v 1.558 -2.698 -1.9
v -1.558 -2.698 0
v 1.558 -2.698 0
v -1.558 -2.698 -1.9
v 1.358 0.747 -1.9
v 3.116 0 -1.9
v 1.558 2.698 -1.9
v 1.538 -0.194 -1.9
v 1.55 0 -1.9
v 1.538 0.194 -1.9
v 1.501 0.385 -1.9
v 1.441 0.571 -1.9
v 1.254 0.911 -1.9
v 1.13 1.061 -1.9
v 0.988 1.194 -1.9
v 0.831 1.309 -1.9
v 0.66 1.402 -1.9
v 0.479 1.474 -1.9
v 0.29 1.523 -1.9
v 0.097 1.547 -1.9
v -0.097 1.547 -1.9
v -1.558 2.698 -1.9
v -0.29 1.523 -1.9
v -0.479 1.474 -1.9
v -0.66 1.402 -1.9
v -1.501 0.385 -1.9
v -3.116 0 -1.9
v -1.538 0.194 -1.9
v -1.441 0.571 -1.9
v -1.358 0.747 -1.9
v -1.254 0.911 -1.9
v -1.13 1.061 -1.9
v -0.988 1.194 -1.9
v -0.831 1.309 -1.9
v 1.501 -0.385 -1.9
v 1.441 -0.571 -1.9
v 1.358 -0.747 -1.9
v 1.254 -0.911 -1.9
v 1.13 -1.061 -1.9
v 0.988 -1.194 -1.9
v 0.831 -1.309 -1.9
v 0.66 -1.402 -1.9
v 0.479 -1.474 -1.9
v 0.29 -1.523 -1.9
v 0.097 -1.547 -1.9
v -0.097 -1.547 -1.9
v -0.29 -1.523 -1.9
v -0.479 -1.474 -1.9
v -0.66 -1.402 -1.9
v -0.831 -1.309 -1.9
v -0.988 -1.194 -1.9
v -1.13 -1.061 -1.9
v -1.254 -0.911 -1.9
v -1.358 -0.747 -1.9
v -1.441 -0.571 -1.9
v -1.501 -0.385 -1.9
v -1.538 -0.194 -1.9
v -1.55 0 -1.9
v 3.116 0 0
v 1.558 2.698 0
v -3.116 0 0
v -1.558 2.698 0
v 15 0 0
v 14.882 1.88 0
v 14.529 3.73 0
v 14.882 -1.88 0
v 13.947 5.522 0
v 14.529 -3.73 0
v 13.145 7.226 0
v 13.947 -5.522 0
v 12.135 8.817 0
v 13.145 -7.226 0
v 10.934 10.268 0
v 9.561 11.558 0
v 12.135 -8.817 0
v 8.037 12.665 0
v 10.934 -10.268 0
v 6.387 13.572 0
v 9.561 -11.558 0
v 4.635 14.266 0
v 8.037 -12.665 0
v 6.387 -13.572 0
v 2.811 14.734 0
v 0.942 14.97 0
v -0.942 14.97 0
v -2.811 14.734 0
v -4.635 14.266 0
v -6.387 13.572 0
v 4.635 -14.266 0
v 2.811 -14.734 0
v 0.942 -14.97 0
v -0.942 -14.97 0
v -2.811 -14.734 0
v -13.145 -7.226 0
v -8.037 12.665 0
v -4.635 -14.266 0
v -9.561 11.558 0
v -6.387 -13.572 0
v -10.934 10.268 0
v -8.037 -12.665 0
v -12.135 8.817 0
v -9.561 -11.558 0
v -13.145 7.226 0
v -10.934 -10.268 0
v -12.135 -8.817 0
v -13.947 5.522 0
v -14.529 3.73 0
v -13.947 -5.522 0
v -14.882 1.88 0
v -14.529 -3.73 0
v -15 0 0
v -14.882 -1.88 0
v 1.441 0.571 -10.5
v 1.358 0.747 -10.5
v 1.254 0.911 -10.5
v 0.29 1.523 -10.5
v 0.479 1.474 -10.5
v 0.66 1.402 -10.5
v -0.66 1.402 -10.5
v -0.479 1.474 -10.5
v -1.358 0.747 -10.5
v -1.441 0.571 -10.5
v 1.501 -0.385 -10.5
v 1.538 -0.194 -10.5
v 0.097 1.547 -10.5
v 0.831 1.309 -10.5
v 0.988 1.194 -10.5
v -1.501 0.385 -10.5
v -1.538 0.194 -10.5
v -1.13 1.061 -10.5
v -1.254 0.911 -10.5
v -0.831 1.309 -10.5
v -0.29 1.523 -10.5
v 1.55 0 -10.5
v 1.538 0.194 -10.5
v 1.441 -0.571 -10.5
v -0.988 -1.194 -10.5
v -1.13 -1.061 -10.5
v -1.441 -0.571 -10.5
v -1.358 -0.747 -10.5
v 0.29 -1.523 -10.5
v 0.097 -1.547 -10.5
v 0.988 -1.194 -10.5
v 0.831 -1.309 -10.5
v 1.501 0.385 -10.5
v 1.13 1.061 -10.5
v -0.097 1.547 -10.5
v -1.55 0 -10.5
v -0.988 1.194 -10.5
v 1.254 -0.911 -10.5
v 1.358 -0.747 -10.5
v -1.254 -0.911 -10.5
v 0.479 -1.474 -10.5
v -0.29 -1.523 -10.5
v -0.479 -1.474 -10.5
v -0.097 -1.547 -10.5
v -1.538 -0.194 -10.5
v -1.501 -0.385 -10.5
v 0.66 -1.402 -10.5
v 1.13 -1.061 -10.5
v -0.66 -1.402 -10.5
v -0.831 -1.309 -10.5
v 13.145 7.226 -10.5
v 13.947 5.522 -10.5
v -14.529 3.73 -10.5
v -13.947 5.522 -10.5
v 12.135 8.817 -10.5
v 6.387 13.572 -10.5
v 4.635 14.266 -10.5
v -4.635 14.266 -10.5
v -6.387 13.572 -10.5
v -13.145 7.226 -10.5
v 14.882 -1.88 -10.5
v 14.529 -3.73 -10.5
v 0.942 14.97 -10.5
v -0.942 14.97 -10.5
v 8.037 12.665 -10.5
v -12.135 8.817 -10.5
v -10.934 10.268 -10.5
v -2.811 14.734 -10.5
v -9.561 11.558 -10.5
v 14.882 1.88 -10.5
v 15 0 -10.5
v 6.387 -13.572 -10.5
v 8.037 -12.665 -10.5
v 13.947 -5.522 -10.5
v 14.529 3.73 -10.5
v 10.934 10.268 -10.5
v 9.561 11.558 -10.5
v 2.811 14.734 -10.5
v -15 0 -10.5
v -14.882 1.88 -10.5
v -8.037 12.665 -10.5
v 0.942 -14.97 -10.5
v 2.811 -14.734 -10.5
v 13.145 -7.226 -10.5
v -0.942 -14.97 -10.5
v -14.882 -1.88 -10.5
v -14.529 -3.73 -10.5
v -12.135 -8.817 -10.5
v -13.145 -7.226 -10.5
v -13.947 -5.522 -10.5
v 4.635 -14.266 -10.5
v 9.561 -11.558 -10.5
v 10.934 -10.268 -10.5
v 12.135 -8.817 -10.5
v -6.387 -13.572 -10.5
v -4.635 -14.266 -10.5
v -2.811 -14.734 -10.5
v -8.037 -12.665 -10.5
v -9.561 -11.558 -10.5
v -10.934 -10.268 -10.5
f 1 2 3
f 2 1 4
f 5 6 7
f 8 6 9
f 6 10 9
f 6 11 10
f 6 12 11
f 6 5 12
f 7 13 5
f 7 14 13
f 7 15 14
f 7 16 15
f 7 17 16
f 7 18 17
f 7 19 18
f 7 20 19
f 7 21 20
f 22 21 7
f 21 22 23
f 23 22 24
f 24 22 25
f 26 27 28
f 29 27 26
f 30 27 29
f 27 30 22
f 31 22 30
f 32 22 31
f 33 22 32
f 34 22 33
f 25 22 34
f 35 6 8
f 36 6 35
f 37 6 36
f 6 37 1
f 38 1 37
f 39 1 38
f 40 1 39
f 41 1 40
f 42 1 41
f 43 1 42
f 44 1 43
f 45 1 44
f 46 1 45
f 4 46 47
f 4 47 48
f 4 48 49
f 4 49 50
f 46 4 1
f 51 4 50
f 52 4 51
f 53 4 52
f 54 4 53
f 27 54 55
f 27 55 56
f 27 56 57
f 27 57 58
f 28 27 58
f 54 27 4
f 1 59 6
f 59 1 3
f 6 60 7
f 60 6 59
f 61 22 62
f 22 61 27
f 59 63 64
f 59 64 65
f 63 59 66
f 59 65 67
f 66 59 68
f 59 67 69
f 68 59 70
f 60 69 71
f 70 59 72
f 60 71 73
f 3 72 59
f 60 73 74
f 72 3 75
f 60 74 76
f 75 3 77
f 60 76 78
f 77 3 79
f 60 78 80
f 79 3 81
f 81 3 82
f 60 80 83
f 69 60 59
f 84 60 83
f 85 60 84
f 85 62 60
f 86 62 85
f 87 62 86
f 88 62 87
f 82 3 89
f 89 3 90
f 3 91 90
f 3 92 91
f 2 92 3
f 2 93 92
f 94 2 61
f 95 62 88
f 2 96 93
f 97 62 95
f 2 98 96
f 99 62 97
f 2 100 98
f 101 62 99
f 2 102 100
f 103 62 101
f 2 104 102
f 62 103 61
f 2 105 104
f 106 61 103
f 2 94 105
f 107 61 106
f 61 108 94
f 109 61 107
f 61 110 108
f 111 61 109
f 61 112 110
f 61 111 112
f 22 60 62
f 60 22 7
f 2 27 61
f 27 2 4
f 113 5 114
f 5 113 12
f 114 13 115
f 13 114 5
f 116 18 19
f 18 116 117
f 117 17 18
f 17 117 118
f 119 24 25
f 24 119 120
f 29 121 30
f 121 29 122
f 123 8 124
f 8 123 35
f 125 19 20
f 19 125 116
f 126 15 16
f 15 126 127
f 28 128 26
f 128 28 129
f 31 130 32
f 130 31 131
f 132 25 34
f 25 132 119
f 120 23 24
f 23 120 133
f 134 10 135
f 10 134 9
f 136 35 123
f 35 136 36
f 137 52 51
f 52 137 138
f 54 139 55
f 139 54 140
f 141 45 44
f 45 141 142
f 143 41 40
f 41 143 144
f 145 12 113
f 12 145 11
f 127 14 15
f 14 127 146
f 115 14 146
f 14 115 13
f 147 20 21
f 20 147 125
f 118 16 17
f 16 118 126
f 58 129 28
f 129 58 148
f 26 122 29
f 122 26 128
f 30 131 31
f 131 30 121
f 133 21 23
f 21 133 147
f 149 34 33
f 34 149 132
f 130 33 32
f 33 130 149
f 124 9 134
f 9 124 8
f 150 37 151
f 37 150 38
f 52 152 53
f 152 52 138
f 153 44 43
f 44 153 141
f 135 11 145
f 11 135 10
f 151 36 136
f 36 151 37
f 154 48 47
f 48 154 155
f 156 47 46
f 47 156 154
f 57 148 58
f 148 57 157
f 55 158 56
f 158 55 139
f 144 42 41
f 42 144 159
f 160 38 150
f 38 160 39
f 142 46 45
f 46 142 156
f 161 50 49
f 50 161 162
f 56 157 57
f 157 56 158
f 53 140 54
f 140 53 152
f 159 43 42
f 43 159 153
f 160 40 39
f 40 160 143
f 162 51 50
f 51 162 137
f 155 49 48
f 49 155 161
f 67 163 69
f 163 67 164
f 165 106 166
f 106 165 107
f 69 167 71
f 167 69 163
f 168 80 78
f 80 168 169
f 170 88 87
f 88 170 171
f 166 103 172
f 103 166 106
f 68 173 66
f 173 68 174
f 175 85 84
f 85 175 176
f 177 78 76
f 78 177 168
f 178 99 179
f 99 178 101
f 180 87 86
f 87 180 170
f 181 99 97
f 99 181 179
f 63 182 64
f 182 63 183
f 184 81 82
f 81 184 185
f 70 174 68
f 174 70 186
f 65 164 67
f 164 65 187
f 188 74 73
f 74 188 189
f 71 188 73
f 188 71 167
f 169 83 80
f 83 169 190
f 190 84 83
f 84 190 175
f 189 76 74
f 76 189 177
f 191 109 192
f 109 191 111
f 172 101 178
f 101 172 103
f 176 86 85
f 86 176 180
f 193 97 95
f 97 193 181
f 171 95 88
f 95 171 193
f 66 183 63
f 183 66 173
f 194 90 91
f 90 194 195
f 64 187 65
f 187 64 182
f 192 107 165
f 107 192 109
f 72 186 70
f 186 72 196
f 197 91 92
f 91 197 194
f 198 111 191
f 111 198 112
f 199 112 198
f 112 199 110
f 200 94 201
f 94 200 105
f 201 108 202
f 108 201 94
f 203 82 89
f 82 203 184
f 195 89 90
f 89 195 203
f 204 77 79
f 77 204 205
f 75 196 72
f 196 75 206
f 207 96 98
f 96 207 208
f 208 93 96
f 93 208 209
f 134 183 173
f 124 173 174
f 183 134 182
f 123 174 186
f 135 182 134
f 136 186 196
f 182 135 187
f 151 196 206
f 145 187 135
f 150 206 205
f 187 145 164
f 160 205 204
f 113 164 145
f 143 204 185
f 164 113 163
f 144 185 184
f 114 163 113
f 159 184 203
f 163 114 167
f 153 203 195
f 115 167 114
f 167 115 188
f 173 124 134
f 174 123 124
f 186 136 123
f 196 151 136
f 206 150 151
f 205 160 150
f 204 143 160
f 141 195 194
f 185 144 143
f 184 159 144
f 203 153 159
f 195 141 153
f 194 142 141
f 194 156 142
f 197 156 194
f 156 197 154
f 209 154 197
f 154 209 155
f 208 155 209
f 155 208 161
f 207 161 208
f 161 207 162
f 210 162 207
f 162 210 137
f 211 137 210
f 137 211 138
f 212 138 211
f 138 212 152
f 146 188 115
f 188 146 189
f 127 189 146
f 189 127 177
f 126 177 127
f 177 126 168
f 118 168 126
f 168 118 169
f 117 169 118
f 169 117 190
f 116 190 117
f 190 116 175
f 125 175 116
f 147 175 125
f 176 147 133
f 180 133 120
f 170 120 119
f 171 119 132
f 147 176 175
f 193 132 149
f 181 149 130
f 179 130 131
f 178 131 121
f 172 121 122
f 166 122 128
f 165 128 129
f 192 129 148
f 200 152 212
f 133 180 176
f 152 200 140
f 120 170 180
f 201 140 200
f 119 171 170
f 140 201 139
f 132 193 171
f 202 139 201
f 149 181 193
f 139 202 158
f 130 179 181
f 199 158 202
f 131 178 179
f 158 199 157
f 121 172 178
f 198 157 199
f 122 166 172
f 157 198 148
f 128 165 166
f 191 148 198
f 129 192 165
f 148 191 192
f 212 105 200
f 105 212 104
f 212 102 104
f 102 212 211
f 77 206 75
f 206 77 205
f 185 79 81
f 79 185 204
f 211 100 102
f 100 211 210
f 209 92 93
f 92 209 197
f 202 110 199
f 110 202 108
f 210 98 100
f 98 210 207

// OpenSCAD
$fn = 50;


difference() {
	union() {
		translate(v = [0, 0, -10.5000000000]) {
			cylinder(h = 10.5000000000, r = 15.0000000000);
		}
	}
	union() {
		translate(v = [0, 0, 0]) {
			rotate(a = [0, 0, 0]) {
				difference() {
					union() {
						translate(v = [0, 0, -1.9000000000]) {
							linear_extrude(height = 1.9000000000) {
								polygon(points = [[3.1158000000, 0.0000000000], [1.5579000000, 2.6983619531], [-1.5579000000, 2.6983619531], [-3.1158000000, 0.0000000000], [-1.5579000000, -2.6983619531], [1.5579000000, -2.6983619531]]);
							}
						}
					}
					union();
				}
			}
		}
		#translate(v = [0, 0, -100.0000000000]) {
			cylinder(h = 200, r = 1.5500000000);
		}
	}
}
